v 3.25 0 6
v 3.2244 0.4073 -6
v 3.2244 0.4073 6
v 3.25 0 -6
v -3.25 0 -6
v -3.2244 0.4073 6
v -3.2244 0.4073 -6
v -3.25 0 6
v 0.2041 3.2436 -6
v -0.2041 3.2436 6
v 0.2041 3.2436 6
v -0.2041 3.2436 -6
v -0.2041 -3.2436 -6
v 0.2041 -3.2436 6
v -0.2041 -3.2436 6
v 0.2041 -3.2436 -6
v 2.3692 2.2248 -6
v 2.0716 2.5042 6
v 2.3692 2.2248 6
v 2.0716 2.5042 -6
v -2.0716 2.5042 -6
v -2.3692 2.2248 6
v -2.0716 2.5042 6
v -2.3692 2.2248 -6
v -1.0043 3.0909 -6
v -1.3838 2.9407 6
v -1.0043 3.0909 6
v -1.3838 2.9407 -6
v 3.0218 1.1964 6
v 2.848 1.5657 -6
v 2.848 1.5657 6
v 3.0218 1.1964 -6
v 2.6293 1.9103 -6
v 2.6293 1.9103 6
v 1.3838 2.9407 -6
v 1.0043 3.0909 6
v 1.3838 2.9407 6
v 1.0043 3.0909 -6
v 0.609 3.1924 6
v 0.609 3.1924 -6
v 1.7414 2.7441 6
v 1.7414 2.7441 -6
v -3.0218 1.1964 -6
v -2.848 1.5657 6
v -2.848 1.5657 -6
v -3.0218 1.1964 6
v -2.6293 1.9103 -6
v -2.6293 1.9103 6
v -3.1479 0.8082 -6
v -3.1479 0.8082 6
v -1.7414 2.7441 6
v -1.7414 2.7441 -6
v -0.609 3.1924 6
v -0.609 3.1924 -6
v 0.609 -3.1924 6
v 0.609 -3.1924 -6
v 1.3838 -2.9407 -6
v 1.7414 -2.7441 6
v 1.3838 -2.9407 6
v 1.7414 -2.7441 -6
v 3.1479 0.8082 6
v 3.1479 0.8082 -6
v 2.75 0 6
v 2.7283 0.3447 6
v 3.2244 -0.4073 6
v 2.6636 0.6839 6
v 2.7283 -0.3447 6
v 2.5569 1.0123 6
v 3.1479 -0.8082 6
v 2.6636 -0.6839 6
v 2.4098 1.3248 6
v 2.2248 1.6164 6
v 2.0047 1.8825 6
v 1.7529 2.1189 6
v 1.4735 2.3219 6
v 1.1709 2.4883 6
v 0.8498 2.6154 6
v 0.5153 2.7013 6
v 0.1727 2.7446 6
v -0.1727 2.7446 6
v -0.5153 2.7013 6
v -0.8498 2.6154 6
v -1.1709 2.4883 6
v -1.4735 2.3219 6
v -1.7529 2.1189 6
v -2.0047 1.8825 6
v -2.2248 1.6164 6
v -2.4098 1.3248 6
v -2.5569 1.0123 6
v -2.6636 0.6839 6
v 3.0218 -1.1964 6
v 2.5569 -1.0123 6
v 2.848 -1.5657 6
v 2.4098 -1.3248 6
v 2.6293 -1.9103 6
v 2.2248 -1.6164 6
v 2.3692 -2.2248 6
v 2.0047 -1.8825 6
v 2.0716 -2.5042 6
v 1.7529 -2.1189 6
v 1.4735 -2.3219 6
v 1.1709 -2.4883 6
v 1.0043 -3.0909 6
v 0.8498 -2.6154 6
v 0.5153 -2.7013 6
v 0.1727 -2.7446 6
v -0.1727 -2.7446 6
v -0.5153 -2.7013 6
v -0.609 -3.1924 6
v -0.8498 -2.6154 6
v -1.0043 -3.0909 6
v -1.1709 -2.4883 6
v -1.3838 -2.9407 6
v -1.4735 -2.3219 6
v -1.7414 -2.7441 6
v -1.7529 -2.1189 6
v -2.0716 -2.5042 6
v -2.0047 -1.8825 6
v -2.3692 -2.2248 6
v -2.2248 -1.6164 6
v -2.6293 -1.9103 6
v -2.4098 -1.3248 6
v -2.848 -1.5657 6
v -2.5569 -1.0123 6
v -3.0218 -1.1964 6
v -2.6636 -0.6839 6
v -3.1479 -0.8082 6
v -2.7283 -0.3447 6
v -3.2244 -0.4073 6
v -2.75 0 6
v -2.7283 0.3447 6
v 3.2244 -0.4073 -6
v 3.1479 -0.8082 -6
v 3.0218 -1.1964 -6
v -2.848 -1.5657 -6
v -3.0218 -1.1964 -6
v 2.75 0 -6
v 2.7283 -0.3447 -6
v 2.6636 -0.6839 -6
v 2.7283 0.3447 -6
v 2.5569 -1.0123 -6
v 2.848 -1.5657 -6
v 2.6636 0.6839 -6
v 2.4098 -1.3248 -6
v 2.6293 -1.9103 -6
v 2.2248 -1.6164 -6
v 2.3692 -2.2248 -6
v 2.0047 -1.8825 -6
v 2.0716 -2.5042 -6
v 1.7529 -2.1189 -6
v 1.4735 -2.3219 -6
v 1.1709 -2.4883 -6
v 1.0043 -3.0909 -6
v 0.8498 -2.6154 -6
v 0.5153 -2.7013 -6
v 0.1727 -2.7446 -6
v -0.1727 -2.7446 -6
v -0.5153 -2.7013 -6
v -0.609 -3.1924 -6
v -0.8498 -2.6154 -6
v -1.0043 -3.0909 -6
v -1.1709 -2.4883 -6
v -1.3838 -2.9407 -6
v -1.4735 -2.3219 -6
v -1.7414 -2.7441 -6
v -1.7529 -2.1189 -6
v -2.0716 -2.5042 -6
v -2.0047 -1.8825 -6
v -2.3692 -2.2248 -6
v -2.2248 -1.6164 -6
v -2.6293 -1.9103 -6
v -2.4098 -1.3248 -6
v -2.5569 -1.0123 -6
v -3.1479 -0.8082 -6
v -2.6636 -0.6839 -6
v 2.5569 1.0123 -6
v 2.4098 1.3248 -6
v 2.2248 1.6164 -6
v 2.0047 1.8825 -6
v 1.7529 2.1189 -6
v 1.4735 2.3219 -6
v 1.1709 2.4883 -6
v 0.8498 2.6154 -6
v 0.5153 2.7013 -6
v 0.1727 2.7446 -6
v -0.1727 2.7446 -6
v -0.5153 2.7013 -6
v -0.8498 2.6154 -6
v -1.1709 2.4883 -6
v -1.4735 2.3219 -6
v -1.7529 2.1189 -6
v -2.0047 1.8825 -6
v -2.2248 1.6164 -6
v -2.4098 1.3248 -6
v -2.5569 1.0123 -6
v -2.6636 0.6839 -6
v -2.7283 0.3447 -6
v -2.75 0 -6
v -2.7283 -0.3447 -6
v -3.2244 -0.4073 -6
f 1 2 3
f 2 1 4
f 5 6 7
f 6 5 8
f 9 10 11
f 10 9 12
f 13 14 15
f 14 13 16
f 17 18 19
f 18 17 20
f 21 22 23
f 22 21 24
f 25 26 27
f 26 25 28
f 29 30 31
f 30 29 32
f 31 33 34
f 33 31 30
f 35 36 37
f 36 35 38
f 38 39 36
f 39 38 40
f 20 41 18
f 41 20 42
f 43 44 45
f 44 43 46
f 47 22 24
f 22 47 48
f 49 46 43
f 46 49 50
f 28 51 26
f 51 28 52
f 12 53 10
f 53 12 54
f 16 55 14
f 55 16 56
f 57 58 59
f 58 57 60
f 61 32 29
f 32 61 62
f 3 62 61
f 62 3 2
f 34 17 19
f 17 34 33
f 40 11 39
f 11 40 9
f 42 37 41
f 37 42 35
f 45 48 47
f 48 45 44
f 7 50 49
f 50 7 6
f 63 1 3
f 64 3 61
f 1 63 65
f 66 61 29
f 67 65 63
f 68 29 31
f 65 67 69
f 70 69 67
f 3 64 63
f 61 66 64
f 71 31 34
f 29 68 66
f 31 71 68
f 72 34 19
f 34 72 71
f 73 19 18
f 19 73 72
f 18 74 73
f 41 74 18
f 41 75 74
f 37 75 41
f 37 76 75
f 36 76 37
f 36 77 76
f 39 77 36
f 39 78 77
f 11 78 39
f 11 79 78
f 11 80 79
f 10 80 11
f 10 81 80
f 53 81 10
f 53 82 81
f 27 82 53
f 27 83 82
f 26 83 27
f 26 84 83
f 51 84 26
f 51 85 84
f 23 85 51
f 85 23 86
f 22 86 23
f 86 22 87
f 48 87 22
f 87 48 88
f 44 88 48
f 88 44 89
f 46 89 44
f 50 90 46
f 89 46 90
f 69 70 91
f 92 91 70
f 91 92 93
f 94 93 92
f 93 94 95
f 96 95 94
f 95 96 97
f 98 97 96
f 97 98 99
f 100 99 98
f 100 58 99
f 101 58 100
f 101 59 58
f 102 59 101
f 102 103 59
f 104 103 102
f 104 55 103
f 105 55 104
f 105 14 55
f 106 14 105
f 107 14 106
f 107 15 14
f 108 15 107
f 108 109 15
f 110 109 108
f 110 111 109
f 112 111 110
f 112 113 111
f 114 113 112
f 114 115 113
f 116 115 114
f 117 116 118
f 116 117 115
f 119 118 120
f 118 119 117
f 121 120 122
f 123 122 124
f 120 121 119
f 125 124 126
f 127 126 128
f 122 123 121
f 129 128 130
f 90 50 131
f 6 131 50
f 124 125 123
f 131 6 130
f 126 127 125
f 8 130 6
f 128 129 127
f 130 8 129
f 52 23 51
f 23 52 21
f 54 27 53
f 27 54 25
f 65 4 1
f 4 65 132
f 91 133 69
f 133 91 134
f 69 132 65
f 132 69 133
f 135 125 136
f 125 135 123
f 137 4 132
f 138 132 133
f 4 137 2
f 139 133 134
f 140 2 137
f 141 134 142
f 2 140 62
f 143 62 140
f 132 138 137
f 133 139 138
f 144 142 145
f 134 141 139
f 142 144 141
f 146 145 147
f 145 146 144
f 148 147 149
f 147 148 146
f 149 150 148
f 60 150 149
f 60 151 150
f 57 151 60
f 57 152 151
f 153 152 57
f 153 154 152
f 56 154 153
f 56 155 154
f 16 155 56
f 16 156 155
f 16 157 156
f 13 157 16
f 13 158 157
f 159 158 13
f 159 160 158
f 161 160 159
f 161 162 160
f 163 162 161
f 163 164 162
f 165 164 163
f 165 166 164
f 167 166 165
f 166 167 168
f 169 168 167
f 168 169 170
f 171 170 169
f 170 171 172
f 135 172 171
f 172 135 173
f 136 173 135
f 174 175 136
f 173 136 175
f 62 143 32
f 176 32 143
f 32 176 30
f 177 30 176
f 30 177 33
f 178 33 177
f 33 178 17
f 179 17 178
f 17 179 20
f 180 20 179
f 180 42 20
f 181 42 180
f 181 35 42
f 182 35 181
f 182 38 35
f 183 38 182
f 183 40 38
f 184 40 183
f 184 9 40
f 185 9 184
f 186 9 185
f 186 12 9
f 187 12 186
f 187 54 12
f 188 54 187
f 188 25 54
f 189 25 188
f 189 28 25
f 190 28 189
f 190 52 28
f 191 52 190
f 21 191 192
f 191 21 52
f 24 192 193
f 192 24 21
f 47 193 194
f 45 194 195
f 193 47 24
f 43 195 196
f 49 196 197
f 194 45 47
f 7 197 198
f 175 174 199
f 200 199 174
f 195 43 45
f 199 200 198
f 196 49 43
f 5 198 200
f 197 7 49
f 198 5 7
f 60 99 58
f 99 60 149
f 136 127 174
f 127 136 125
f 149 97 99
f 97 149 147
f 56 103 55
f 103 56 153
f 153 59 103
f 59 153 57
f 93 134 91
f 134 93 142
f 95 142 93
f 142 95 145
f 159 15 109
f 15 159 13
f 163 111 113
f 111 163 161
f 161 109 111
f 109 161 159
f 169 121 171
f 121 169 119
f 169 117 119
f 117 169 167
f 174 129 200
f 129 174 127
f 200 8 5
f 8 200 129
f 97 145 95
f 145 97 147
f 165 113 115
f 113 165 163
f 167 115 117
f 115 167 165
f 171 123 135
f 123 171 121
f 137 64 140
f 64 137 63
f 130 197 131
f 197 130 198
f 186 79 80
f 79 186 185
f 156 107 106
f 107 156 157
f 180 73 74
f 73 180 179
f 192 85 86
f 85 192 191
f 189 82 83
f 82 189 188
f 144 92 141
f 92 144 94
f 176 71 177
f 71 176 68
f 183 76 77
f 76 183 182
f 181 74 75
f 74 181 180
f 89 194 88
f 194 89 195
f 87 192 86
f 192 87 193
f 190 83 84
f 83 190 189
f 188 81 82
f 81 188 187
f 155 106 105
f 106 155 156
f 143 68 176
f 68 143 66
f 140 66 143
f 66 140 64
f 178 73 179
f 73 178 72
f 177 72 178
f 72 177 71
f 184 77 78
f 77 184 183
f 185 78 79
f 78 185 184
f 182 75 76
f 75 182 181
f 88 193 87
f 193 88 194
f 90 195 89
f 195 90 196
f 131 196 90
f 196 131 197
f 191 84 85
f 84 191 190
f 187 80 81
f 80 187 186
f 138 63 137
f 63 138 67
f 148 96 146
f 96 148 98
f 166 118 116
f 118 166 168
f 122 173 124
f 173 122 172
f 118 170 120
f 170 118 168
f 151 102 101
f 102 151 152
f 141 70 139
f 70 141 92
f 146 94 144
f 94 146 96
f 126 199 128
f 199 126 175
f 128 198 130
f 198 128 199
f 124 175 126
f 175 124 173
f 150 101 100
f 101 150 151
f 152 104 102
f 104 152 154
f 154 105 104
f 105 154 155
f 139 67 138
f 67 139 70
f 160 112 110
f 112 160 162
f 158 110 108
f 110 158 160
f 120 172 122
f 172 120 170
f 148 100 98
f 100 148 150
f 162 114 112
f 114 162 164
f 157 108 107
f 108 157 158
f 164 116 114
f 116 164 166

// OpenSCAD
$fn = 50;


difference() {
	union() {
		translate(v = [0, 0, -6.0000000000]) {
			cylinder(h = 12, r = 3.2500000000);
		}
	}
	union() {
		translate(v = [0, 0, -100.0000000000]) {
			cylinder(h = 200, r = 2.7500000000);
		}
	}
}
